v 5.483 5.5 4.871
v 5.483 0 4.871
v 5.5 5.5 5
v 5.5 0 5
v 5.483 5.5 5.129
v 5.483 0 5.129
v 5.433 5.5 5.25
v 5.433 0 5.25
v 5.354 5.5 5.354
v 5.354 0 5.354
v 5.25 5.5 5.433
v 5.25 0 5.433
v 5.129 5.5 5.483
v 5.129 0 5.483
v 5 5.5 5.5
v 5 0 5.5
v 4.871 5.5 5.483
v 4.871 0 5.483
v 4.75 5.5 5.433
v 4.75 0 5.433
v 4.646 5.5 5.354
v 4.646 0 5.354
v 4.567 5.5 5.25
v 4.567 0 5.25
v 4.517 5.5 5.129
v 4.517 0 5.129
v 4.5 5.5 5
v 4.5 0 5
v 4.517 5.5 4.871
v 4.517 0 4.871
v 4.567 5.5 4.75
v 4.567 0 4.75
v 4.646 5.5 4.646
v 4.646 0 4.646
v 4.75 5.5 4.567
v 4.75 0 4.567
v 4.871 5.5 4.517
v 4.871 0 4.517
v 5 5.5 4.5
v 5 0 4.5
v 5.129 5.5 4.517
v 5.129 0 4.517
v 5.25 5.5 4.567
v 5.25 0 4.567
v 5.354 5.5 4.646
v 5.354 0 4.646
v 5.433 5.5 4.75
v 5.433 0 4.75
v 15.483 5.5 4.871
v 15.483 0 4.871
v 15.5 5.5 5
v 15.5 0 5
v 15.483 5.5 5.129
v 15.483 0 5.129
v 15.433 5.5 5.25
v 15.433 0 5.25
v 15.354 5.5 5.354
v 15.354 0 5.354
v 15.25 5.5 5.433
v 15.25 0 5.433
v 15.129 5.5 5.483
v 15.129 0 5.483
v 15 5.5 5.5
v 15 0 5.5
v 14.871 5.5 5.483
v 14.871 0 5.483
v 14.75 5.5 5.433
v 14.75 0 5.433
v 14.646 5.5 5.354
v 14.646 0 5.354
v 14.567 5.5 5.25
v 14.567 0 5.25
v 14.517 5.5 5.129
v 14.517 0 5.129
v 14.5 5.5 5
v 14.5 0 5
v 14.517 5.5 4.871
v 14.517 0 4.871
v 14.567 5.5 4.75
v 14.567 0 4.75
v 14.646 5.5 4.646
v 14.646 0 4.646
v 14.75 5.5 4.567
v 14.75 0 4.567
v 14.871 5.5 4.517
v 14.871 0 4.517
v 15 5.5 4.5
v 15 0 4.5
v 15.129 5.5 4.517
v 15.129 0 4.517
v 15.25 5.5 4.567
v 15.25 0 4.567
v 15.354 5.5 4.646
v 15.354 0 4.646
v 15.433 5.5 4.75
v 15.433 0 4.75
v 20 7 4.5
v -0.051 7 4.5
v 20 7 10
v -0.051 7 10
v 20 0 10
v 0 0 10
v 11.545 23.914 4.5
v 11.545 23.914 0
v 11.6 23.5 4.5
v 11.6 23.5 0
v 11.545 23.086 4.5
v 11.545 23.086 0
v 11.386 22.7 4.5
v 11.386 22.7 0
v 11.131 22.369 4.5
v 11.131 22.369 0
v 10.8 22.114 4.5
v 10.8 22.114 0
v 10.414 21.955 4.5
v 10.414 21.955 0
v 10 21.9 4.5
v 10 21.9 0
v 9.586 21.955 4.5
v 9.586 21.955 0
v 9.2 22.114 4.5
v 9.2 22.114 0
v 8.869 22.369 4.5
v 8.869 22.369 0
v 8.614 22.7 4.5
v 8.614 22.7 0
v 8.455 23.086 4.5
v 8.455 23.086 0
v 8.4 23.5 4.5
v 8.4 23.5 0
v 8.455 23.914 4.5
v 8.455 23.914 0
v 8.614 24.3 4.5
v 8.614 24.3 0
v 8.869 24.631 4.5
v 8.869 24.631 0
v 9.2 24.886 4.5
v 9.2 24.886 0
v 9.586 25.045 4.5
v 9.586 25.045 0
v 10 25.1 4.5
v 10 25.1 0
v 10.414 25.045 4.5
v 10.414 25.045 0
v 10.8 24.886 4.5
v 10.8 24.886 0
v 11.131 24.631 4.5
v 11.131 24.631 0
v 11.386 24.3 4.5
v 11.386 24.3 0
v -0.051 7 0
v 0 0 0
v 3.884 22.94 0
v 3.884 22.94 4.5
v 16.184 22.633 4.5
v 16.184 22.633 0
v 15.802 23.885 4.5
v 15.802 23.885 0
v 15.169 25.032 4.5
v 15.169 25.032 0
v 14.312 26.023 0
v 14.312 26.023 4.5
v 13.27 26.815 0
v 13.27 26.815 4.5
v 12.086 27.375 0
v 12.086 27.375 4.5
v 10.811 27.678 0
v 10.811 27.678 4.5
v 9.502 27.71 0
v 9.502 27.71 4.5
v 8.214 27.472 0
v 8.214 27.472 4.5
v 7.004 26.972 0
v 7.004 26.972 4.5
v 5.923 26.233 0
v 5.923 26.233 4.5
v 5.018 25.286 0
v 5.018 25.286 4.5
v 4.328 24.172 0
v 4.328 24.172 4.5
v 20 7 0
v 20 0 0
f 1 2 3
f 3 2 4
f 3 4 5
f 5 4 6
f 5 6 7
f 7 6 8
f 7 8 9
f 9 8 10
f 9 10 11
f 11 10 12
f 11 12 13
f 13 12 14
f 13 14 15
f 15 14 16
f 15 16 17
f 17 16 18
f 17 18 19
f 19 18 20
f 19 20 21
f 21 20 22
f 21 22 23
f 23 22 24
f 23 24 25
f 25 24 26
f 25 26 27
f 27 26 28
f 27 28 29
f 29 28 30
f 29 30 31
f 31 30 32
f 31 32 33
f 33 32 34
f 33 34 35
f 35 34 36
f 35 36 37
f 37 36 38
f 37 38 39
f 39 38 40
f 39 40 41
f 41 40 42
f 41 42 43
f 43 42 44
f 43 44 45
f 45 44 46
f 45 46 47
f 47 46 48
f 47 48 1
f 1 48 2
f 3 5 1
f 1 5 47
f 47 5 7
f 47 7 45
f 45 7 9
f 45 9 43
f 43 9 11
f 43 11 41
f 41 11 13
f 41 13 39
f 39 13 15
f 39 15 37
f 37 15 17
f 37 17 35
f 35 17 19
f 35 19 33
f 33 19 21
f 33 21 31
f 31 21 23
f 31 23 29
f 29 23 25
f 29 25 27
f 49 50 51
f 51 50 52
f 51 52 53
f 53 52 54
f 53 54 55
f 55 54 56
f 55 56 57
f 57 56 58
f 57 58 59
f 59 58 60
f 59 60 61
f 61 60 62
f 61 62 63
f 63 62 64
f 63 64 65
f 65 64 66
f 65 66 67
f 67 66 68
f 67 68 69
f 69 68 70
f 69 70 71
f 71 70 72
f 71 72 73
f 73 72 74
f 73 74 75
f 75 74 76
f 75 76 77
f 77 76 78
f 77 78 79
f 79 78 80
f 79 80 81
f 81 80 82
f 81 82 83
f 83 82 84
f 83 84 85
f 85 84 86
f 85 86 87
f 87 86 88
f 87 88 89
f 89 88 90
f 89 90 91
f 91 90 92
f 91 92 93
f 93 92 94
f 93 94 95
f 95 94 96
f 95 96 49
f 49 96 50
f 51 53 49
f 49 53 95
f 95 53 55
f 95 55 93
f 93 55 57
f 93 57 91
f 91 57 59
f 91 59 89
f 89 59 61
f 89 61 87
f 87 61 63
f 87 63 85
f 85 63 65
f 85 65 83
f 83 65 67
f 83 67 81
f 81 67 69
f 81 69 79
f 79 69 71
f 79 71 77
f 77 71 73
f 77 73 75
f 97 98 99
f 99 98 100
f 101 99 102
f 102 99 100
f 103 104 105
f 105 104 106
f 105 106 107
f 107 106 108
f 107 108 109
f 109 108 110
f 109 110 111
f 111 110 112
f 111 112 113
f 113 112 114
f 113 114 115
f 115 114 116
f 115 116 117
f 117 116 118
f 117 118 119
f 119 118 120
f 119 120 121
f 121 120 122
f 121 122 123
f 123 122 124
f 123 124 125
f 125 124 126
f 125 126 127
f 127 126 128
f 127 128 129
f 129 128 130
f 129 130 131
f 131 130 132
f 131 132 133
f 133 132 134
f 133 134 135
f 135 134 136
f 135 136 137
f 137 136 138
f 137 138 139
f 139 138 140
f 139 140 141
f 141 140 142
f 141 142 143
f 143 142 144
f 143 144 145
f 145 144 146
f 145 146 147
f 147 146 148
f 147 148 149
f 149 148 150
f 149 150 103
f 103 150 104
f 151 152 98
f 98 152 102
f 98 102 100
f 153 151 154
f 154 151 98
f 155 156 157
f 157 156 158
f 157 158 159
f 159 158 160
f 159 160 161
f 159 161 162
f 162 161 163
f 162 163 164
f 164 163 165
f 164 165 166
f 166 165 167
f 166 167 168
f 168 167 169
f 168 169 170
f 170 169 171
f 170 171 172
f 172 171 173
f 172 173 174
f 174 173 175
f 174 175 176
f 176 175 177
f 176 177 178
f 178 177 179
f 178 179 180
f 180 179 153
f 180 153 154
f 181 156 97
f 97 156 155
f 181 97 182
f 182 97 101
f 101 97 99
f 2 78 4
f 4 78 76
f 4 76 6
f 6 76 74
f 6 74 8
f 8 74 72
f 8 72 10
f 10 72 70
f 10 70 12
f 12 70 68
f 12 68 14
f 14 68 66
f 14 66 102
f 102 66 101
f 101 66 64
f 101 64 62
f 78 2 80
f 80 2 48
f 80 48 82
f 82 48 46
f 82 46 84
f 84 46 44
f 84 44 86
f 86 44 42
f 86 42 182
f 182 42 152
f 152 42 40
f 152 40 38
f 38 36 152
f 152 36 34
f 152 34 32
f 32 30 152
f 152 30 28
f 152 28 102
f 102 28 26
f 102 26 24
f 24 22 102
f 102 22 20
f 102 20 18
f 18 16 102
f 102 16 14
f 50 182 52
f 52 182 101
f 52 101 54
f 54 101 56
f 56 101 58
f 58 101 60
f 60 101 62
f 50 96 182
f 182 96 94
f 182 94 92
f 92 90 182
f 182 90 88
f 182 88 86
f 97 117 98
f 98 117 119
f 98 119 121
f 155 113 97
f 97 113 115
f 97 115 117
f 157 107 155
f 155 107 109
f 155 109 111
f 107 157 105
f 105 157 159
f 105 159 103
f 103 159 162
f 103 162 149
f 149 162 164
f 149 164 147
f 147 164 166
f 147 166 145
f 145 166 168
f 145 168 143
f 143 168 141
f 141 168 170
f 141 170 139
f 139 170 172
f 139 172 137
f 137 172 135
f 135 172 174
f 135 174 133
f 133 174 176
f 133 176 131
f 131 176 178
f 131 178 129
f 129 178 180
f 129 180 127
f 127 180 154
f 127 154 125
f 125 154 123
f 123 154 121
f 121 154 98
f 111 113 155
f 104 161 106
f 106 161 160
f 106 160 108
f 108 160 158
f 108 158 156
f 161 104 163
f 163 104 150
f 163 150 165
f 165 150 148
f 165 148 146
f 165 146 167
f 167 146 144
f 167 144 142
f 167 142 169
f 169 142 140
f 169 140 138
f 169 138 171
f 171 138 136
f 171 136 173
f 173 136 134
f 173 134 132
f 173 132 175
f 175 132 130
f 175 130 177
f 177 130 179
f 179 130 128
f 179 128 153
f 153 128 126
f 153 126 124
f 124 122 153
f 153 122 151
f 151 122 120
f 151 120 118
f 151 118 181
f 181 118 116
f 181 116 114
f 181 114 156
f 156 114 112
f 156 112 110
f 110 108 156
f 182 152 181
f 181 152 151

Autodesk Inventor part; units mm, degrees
ref_plane "YZ Plane" through (0, 0, 0) normal (1, 0, 0) x (0, 1, 0)
ref_plane "XZ Plane" through (0, 0, 0) normal (0, 1, 0) x (-1, 0, 0)
ref_plane "XY Plane" through (0, 0, 0) normal (0, 0, 1) x (1, 0, 0)
sketch "Sketch1" plane through (0, 0, 0) normal (0, 0, 1) x (1, 0, 0)
  circle A0 centre (10, 23.5) radius 1.6
  line L0 (-0.0511, 6.9998) -> (3.884, 22.9404)
  line L1 (20, 6.9998) -> (16.1838, 22.6325)
  arc A1 (16.1838, 22.6325) -> (3.884, 22.9404) centre (10, 21.4305) ccw
  line L2 (0, 0) -> (20, 0)
  line L3 (20, 6.9998) -> (16.1838, 22.6325)
  line L4 (0, 0) -> (-0.0511, 6.9998)
  line L5 (20, 0) -> (20, 6.9998)
  dimension "d17" = 7
  dimension "d18" = 6.9998
sketch "Sketch3" plane through (0, 0, 0) normal (0, 0, 1) x (1, 0, 0)
  point P0 (0, 0)
extrude "Extrusion1" add sketch "Sketch1" along normal blind 4.5
sketch "Sketch4" plane through (0, 0, 4.5) normal (0, 0, 1) x (1, 0, 0)
  line L0 (-0.0511, 6.9998) -> (0, 0) projected
  line L1 (20, 0) -> (20, 6.9998) projected
  line L2 (0, 0) -> (20, 0)
  line L3 (20, 0) -> (20, 6.9998)
  line L4 (3.884, 22.9404) -> (-0.0511, 6.9998) projected
  line L5 (20, 6.9998) -> (-0.0511, 6.9998)
  line L6 (0, 6.9998) -> (0, 0)
extrude "Extrusion2" add sketch "Sketch4" along normal blind 5.5
sketch "Sketch5" plane through (0, 0, 0) normal (0, -1, 0) x (1, 0, 0)
  circle A0 centre (5, 5) radius 0.5
  circle A1 centre (15, 5) radius 0.5
  point P0 (0, 0)
  dimension "d13" = 1
  dimension "d14" = 1
extrude "Extrusion3" cut sketch "Sketch5" against normal blind 5.5
properties part number "upper_deck_shaft_mount"
